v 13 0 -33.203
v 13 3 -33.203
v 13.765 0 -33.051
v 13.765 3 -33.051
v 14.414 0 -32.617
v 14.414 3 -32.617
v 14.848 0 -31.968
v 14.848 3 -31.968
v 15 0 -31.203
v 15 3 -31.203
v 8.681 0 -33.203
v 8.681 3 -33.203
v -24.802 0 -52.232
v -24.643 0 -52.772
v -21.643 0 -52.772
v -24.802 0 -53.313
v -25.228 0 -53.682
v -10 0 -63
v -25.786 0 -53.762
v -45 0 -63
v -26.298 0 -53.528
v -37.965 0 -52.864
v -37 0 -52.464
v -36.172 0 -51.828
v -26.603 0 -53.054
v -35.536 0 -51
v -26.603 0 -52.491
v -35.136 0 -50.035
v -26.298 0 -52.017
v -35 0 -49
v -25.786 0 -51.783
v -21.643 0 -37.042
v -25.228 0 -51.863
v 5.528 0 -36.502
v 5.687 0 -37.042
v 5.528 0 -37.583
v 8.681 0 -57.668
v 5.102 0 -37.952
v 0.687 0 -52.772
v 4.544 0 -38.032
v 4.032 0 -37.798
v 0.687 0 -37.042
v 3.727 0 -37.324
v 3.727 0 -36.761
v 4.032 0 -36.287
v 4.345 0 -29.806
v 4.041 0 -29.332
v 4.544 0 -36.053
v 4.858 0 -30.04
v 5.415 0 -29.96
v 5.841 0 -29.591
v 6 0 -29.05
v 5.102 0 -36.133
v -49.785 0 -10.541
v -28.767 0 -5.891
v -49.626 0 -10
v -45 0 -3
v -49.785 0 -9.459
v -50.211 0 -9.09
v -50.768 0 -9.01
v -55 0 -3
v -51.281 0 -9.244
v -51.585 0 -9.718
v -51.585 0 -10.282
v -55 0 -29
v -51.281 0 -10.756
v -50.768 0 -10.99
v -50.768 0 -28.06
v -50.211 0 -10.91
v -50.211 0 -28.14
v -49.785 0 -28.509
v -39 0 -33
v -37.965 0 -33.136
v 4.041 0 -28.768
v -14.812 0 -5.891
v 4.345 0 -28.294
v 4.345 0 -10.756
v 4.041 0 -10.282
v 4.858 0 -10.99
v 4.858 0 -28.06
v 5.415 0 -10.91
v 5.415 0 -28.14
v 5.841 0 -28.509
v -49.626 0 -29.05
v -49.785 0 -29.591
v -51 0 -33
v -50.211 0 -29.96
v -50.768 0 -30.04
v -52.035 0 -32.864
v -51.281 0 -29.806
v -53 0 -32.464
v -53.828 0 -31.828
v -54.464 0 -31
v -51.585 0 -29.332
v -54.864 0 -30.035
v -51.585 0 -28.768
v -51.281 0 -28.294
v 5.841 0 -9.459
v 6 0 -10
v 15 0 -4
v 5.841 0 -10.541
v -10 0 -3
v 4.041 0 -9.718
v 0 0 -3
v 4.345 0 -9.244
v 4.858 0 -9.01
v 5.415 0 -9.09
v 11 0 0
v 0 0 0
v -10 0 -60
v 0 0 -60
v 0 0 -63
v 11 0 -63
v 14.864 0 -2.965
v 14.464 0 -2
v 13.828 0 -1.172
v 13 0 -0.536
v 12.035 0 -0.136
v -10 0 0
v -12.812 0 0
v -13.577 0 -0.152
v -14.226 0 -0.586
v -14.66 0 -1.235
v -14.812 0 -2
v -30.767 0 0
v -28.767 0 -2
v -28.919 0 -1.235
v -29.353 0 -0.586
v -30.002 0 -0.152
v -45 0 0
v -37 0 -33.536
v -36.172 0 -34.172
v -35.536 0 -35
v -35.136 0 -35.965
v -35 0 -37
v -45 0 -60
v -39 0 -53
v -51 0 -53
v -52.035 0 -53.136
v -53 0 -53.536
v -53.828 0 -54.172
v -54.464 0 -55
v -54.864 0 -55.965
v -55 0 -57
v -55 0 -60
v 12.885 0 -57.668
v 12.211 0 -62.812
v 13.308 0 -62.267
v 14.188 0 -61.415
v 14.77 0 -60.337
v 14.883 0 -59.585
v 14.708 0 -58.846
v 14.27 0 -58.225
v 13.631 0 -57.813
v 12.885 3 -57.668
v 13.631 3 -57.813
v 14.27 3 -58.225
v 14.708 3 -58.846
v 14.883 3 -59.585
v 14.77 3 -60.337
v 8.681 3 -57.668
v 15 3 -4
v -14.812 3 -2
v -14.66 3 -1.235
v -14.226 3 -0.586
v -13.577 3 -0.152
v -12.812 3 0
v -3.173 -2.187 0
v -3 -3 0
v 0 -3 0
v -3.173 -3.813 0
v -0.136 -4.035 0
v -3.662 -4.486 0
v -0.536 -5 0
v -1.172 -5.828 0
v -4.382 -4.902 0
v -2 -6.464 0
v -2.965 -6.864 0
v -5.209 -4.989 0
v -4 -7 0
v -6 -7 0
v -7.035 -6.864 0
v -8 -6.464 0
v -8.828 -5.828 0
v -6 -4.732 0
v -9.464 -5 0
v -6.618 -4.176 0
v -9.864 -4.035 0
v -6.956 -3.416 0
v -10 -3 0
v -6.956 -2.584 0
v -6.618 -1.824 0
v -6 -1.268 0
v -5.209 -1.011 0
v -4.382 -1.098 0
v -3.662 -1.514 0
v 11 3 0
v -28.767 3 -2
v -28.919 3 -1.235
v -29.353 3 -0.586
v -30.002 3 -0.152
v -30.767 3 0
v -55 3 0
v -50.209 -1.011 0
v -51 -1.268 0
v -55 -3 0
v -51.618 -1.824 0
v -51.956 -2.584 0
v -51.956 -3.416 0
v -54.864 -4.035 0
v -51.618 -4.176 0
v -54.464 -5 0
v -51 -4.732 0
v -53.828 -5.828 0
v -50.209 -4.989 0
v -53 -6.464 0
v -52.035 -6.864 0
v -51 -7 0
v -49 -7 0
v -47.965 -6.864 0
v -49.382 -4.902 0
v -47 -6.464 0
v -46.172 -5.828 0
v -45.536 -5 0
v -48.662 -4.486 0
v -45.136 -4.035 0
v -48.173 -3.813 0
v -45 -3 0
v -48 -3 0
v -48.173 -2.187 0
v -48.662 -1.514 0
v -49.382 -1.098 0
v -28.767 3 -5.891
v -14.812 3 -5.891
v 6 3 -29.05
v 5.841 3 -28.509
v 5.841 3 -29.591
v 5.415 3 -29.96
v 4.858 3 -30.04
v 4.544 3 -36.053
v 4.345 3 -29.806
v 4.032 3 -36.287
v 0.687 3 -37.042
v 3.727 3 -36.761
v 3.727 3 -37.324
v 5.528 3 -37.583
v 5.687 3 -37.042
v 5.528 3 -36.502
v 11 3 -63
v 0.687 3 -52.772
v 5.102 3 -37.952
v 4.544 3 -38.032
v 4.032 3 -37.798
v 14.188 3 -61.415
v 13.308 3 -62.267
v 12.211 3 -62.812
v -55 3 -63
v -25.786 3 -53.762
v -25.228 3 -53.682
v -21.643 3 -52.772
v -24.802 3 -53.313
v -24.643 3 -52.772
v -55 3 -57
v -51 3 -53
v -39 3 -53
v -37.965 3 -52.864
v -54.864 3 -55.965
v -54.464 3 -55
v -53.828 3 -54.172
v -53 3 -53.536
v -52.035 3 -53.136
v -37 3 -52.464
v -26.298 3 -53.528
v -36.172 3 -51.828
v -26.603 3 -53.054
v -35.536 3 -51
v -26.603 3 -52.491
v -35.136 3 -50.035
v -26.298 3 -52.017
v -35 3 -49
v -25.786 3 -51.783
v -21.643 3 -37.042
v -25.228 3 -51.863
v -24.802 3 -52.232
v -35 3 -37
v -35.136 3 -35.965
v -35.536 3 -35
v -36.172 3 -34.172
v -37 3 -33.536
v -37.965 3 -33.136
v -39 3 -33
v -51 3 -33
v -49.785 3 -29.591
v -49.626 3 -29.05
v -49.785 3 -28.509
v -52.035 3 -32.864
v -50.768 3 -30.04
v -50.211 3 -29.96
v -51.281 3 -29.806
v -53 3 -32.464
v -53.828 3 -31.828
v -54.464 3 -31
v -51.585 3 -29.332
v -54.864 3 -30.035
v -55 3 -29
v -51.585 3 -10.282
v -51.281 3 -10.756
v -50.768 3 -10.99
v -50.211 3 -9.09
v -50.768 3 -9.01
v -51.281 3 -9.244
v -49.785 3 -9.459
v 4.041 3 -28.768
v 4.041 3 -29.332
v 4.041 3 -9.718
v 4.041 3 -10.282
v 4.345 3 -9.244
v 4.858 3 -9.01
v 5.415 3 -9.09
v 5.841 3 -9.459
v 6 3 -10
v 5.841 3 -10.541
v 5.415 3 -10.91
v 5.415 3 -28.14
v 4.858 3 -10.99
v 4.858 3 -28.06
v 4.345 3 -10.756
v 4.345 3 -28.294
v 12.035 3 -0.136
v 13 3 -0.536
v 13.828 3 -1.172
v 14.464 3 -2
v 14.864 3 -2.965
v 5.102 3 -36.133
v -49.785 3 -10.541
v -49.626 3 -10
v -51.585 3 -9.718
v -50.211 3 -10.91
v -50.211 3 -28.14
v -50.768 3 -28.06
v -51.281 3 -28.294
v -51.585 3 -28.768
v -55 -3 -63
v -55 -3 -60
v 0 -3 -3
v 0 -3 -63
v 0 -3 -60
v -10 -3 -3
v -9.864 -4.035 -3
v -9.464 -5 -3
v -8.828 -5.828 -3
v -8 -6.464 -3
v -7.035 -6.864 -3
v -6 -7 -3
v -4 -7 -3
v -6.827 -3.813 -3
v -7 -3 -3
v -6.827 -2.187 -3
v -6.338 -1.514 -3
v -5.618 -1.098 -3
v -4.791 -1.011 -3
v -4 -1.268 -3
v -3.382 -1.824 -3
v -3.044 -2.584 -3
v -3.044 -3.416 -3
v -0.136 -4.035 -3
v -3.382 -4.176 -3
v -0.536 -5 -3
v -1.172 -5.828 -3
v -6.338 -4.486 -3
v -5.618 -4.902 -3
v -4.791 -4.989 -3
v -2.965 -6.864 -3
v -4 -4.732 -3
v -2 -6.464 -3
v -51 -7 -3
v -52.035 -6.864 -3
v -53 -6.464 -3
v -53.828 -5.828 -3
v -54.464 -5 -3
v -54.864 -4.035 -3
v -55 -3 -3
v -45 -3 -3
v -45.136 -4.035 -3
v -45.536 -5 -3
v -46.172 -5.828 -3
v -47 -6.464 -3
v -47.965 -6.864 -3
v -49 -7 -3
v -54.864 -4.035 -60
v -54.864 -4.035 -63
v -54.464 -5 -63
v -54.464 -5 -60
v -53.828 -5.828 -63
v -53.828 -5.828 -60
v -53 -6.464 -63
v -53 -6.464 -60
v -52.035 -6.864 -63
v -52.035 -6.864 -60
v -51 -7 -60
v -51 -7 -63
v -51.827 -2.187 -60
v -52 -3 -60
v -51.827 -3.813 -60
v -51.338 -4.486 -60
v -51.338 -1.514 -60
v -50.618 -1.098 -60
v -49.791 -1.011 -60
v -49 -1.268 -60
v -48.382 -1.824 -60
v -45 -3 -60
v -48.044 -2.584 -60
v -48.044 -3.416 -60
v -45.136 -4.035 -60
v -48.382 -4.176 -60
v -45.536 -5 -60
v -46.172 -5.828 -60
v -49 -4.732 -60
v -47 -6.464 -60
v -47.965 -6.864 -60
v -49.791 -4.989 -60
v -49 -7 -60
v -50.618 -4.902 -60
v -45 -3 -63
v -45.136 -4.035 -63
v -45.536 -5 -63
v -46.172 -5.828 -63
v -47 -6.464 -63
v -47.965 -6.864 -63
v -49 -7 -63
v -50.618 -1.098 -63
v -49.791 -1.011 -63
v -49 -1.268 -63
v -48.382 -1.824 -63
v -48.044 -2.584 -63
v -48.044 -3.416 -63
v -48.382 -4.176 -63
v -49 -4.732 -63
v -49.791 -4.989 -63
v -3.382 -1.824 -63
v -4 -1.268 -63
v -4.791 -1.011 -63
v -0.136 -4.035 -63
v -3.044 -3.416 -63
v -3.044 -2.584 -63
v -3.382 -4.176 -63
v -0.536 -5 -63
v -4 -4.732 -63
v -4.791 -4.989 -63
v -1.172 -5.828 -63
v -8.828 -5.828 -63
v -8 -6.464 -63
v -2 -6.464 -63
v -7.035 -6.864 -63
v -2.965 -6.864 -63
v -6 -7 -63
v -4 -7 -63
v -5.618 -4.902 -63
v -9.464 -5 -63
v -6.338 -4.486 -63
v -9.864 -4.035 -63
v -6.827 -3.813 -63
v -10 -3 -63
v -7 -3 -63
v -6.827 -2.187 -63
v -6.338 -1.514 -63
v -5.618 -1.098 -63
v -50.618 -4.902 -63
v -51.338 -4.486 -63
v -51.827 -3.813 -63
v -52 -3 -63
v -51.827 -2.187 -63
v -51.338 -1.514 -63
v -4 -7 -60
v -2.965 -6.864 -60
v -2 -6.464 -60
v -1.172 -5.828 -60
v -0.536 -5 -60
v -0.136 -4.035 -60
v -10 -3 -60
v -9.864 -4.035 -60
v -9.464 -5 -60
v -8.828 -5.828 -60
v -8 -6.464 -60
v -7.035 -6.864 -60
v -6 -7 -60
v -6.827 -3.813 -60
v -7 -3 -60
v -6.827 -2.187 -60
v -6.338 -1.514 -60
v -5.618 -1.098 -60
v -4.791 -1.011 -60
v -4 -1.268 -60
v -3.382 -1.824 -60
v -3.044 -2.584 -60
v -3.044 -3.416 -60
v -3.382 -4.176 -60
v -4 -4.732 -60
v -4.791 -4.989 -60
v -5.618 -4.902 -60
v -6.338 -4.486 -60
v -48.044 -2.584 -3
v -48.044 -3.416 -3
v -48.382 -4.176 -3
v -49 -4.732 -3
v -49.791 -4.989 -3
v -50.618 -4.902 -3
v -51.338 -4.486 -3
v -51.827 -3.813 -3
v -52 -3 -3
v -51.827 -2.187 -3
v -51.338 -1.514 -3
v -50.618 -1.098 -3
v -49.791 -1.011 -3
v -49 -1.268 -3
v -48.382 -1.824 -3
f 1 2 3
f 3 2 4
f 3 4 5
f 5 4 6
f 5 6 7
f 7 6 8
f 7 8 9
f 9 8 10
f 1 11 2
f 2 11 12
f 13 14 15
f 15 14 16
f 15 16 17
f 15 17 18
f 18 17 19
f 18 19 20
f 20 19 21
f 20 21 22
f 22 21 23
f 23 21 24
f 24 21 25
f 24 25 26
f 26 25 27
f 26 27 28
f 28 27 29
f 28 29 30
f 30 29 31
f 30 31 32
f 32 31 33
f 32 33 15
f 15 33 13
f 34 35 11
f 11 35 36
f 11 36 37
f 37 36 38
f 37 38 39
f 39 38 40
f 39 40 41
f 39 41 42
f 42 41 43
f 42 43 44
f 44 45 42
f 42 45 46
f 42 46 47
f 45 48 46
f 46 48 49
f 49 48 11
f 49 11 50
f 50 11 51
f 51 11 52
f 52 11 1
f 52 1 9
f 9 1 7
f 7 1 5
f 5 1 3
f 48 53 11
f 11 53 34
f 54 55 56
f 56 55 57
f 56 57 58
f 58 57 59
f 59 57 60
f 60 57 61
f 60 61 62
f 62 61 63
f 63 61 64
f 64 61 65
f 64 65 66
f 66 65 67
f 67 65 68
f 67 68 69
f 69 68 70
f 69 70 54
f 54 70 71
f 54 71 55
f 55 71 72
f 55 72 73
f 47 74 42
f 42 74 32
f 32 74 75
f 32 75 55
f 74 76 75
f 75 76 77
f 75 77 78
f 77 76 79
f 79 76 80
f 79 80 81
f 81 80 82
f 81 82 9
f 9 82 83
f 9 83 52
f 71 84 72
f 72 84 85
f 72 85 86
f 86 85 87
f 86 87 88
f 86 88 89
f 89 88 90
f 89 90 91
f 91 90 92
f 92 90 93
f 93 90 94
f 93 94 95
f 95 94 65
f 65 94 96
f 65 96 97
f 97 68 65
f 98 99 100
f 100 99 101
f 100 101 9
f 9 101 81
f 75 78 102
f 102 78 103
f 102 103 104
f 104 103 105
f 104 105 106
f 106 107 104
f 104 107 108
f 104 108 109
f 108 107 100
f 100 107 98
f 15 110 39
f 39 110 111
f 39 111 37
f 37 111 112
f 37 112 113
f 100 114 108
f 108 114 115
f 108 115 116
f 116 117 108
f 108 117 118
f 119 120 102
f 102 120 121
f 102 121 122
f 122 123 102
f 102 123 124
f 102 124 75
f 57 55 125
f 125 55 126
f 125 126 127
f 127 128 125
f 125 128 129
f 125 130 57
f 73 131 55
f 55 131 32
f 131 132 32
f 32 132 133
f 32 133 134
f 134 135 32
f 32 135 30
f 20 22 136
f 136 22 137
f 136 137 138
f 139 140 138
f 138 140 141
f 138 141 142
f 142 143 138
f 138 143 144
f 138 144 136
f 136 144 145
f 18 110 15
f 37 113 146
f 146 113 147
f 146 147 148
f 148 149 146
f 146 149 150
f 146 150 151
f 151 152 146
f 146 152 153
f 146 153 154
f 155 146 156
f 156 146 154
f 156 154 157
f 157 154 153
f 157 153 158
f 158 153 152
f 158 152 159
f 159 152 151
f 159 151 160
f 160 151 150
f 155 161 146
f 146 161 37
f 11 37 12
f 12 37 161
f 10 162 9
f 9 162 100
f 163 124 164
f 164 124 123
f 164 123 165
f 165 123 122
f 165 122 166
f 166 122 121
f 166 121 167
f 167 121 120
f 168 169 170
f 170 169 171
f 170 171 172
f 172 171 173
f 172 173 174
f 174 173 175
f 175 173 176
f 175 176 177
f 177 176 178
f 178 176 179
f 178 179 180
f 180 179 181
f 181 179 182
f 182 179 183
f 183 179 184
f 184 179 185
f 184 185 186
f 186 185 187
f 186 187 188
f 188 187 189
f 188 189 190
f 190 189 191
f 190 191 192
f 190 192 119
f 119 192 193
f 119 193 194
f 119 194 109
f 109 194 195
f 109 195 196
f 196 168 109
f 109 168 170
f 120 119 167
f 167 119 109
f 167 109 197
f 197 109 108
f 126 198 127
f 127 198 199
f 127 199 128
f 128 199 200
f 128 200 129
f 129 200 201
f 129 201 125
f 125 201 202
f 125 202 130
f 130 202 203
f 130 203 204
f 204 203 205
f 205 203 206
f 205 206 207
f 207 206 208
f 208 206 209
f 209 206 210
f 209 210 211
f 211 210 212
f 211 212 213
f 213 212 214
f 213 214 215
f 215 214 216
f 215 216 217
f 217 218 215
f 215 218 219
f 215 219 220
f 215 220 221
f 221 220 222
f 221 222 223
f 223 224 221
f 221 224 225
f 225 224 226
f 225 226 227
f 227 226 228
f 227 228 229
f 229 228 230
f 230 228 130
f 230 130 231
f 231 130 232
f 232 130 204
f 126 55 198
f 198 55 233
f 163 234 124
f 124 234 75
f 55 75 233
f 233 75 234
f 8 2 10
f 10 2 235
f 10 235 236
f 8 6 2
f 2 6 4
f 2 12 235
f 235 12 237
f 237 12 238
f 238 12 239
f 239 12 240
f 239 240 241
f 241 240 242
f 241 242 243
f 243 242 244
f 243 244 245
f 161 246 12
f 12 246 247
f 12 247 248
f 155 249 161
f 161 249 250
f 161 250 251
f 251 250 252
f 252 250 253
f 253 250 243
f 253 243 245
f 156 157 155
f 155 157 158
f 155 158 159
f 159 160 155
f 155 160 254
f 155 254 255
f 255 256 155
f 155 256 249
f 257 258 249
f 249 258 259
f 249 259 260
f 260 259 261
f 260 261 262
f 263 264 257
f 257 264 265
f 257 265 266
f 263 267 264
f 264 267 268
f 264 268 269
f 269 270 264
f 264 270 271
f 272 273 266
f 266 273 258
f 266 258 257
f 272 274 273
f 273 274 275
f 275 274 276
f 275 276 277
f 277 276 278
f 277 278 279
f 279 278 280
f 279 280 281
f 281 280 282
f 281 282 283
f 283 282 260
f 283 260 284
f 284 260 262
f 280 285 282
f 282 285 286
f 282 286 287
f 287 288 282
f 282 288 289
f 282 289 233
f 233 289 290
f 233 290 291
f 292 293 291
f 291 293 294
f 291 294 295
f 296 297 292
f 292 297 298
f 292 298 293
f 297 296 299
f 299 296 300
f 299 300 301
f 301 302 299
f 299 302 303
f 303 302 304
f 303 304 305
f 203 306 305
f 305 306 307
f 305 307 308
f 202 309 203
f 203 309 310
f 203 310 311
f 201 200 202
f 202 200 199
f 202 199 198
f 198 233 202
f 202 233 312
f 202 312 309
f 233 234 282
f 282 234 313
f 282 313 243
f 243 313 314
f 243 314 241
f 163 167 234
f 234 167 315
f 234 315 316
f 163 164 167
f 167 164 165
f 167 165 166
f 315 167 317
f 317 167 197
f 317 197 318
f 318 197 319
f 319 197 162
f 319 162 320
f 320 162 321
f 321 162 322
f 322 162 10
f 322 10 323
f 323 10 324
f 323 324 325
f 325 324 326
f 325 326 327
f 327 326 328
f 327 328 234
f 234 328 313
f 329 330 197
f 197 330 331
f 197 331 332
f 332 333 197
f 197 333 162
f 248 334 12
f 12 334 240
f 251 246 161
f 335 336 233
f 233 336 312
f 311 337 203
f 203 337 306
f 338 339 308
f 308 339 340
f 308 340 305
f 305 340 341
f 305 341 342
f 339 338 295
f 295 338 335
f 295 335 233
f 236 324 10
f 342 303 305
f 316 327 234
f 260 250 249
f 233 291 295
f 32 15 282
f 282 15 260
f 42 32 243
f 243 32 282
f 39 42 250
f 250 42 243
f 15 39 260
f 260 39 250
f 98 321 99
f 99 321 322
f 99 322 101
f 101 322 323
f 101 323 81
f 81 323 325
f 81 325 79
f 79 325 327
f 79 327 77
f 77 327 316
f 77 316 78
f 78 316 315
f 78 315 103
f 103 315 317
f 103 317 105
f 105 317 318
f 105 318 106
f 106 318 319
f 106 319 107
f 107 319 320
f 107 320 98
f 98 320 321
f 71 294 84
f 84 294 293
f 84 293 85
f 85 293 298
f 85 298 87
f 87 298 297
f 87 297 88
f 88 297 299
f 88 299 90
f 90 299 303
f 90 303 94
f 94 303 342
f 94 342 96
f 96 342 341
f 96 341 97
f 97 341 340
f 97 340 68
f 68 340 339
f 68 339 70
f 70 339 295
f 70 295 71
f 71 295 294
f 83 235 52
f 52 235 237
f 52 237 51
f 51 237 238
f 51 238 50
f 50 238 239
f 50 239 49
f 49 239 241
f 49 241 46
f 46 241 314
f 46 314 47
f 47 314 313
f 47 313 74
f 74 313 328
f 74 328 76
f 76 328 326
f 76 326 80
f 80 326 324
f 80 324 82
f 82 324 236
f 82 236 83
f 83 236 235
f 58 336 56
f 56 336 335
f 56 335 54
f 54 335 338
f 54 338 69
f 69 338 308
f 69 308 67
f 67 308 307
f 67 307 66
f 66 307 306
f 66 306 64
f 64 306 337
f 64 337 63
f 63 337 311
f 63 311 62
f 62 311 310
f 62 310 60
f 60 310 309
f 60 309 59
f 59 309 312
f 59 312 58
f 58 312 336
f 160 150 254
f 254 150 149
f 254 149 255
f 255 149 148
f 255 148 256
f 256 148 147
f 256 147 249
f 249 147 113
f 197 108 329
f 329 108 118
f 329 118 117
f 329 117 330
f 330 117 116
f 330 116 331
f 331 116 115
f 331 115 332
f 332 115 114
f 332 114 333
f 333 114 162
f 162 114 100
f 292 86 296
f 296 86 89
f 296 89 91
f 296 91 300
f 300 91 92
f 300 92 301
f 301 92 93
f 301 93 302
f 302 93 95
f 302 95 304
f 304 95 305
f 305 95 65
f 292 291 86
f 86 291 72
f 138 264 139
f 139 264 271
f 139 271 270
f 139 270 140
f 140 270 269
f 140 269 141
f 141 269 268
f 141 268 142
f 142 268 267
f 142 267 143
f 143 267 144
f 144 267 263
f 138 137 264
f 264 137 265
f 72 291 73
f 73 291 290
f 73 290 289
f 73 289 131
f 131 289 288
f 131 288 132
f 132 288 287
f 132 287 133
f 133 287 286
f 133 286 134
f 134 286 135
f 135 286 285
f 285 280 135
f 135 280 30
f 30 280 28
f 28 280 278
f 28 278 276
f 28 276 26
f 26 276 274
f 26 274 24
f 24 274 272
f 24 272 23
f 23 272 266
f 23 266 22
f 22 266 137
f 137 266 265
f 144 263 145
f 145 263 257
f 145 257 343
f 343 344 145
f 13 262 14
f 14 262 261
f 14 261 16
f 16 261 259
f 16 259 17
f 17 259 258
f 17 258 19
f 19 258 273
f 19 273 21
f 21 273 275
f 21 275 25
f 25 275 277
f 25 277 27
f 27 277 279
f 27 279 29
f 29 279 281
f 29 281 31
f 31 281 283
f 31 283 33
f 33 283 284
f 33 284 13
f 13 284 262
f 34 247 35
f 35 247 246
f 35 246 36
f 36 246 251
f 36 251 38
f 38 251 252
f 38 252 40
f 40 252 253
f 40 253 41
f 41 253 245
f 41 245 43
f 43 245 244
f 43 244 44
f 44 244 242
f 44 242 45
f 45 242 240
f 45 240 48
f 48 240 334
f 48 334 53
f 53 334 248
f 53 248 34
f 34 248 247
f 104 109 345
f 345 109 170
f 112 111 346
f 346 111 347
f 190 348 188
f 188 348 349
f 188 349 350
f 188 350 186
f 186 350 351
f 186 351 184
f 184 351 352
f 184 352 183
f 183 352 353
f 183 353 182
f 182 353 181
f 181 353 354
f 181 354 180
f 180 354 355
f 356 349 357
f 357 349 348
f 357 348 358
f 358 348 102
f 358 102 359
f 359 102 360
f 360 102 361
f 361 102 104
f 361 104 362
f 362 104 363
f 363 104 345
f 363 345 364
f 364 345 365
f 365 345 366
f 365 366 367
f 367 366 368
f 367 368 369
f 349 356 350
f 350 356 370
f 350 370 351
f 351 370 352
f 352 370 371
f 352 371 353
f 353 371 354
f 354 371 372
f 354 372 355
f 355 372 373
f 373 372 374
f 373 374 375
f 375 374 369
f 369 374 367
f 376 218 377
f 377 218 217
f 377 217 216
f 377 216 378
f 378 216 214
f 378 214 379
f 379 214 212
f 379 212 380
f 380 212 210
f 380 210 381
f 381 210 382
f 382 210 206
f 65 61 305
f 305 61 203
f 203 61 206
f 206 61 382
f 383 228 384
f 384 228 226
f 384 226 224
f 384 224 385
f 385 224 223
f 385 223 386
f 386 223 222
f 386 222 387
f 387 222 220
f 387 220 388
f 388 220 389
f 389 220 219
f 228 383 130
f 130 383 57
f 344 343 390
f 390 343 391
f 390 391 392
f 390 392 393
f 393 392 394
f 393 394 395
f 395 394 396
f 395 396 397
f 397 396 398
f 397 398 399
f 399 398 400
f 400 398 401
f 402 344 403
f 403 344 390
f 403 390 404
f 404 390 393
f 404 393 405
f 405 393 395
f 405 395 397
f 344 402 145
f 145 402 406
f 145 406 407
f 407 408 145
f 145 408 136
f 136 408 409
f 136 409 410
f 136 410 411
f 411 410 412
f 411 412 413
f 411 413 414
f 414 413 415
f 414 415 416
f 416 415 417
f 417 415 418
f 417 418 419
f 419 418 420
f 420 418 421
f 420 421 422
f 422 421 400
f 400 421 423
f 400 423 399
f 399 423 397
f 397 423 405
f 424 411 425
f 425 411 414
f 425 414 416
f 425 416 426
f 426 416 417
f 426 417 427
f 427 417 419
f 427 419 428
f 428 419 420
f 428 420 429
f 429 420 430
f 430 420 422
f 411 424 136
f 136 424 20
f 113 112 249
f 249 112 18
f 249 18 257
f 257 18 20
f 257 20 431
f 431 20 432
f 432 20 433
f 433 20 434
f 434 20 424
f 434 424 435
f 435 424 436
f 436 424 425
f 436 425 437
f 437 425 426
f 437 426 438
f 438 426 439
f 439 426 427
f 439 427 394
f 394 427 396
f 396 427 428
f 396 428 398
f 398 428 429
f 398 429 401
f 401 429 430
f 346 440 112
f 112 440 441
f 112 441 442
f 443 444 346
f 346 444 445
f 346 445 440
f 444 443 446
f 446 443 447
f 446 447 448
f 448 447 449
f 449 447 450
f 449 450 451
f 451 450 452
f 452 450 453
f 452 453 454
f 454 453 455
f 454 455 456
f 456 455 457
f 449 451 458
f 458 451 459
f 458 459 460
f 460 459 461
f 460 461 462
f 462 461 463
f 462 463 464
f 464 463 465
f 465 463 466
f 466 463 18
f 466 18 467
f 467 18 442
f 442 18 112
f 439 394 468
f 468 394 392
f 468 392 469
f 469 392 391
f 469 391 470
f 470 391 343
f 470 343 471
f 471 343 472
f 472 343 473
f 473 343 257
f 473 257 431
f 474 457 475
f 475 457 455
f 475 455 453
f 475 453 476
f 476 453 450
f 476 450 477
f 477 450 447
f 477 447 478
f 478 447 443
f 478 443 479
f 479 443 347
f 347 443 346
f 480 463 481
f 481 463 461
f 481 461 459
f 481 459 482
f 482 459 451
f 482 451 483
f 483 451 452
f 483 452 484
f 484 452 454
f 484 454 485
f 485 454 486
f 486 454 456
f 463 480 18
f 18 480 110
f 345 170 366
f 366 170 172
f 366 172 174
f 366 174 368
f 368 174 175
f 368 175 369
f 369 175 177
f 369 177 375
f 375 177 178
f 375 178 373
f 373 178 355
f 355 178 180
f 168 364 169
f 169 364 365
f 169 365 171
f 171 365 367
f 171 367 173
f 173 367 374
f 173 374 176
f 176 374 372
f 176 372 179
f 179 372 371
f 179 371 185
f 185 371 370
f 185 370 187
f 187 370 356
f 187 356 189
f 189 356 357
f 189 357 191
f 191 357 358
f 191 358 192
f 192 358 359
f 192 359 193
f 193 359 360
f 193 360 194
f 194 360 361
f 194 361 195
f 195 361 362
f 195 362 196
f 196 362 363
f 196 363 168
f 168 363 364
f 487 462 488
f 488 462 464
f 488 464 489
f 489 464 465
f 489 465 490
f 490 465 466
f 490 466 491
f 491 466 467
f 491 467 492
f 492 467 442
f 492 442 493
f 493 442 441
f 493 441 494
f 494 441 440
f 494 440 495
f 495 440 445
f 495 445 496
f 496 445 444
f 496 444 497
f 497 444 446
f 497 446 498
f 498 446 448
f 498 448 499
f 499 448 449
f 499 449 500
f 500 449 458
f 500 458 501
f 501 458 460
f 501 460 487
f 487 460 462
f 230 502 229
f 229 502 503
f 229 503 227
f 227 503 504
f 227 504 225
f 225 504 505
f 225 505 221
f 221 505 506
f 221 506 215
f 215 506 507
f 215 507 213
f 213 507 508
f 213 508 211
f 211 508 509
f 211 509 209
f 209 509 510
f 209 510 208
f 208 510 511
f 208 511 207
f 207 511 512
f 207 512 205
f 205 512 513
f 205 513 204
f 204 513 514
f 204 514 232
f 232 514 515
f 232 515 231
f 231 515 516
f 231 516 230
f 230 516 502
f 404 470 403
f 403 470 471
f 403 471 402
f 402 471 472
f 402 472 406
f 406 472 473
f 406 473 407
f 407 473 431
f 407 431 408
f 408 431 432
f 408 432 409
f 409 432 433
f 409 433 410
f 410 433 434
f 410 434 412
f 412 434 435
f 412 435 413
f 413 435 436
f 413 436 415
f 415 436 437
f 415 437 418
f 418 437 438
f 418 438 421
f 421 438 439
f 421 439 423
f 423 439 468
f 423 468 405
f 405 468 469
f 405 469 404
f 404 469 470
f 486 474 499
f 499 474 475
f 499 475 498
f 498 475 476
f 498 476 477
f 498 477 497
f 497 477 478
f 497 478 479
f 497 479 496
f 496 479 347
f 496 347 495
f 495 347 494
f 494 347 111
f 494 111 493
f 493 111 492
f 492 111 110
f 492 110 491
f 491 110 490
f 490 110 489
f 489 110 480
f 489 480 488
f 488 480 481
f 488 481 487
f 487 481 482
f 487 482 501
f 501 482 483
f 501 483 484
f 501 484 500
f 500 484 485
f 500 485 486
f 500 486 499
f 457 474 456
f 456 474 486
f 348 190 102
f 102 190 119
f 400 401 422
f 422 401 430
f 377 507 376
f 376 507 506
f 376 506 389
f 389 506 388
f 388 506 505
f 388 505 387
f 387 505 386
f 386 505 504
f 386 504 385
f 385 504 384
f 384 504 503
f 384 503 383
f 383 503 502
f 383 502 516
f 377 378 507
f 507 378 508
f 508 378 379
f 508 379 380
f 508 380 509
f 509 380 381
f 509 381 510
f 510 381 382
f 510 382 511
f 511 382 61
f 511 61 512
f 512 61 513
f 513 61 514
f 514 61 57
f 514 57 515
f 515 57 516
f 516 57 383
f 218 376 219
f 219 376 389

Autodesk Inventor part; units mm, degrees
ref_plane "YZ Plane" through (0, 0, 0) normal (1, 0, 0) x (0, 1, 0)
ref_plane "XZ Plane" through (0, 0, 0) normal (0, 1, 0) x (-1, 0, 0)
ref_plane "XY Plane" through (0, 0, 0) normal (0, 0, 1) x (1, 0, 0)
sketch "Sketch1" plane through (0, 0, 0) normal (0, 1, 0) x (-1, 0, 0)
  line L0 (0, 0) -> (55, 0)
  line L1 (55, 0) -> (55, -63)
  line L2 (55, -63) -> (0, -63)
  line L3 (0, -63) -> (0, 0)
  dimension "d0" = 55
  dimension "d1" = 63
extrude "Extrusion1" add sketch "Sketch1" along normal blind 3
sketch "Sketch2" plane through (0, 0, 0) normal (0, -1, 0) x (1, 0, 0)
  line L0 (0, 0) -> (-10, 0)
  line L1 (-10, 0) -> (-10, -3)
  line L2 (-10, -3) -> (0, -3)
  line L3 (0, -3) -> (0, 0)
  line L4 (-55, -63) -> (-55, 0) projected
  line L5 (-55, 0) -> (-45, 0)
  line L6 (-45, 0) -> (-45, -3)
  line L7 (-45, -3) -> (-55, -3)
  line L8 (-55, -3) -> (-55, 0)
  line L9 (-55, -63) -> (-45, -63)
  line L10 (-45, -63) -> (-45, -60)
  line L11 (-45, -60) -> (-55, -60)
  line L12 (-55, -60) -> (-55, -63)
  line L13 (0, -63) -> (-10, -63)
  line L14 (-10, -63) -> (-10, -60)
  line L15 (-10, -60) -> (0, -60)
  line L16 (0, -60) -> (0, -63)
  dimension "d4" = 10
  dimension "d5" = 3
  dimension "d6" = 10
  dimension "d7" = 3
  dimension "d8" = 10
  dimension "d9" = 3
  dimension "d10" = 10
  dimension "d11" = 3
extrude "Extrusion2" add sketch "Sketch2" along normal blind 7
sketch "Sketch3" plane through (-55, 3, 0) normal (0, 0, 1) x (1, 0, 0)
  line L0 (10, -10) -> (0, -10) projected
  line L1 (0, -10) -> (5, -10)
  line L2 (5, -10) -> (5, -6)
  line L3 (5, -6) -> (0, -6)
  line L4 (0, -6) -> (0, -10)
  line L5 (45, -3) -> (45, -10) projected
  line L6 (45, -10) -> (50, -10)
  line L7 (50, -10) -> (50, -6)
  line L8 (50, -6) -> (45, -6)
  line L9 (45, -6) -> (45, -10)
  circle A0 centre (5, -6) radius 2
  circle A1 centre (50, -6) radius 2
  point P0 (55, -3)
  dimension "d14" = 5
  dimension "d15" = 4
  dimension "d16" = 5
  dimension "d17" = 4
  dimension "d18" = 4
  dimension "d19" = 4
extrude "Extrusion3" cut sketch "Sketch3" against normal up to surface (63 mm away) contours A0 L3 L2 | L2 L3 A0 | A1 L7 L8 | L8 L7 A1
fillet "Fillet1" radius 4 8 edges at (0, -7, -1.5) (-10, -7, -61.5) (0, -7, -61.5) (-45, -7, -61.5) (-55, -7, -61.5) (-45, -7, -1.5) (-55, -7, -1.5) (-10, -7, -1.5)
sketch "Sketch4" plane through (0, 3, 0) normal (0, 1, 0) x (1, 0, 0)
  line L0 (0, 0) -> (15, 0)
  line L1 (15, 0) -> (15, 63)
  line L2 (15, 63) -> (0, 63)
  line L3 (0, 63) -> (0, 0)
  dimension "d23" = 15
  dimension "d24" = 63
extrude "Extrusion4" add sketch "Sketch4" against normal blind 3
sketch "Sketch5" plane through (0, 3, 0) normal (0, 1, 0) x (1, 0, 0)
  line L0 (14.6866, 62.7723) -> (4.6866, 62.7723)
  line L1 (4.6866, 62.7723) -> (4.6866, 52.7723)
  line L2 (4.6866, 52.7723) -> (14.6866, 52.7723)
  line L3 (14.6866, 52.7723) -> (14.6866, 62.7723)
  line L4 (4.6866, 52.7723) -> (-25.6434, 52.7723)
  line L5 (-25.6434, 52.7723) -> (-25.6434, 37.0423)
  line L6 (-25.6434, 37.0423) -> (4.6866, 37.0423)
  line L7 (4.6866, 37.0423) -> (4.6866, 52.7723)
  circle A0 centre (-25.6434, 52.7723) radius 1
  circle A1 centre (4.6866, 37.0423) radius 1
  circle A2 centre (4.6866, 37.0423) radius 2
  circle A3 centre (-25.6434, 52.7723) radius 2
  point P0 (0, 0)
  dimension "d27" = 10
  dimension "d28" = 10
  dimension "d29" = 30.33
  dimension "d30" = 15.73
  dimension "d31" = 2
  dimension "d32" = 2
  dimension "d33" = 4
  dimension "d34" = 4
extrude "Extrusion5" cut sketch "Sketch5" against normal blind 3 contours A0 L5 L4 | L4 L5 A0 | A1 L6 L7 | L7 L6 A1
sketch "Sketch6" plane through (0, 3, 0) normal (0, 1, 0) x (1, 0, 0)
  line L0 (15, 63) -> (-55, 63) projected
  line L1 (-55, 63) -> (-55, 53)
  line L2 (-55, 53) -> (-35, 53)
  line L3 (-35, 53) -> (-35, 33)
  line L4 (-35, 33) -> (-55, 33)
  line L5 (-55, 33) -> (-55, 53)
  point P0 (0, 0)
  dimension "d37" = 10
  dimension "d38" = 20
  dimension "d39" = 20
extrude "Extrusion6" cut sketch "Sketch6" against normal blind 3
fillet "Fillet2" radius 4 4 edges at (-35, 1.5, -53) (-35, 1.5, -33) (-55, 1.5, -53) (-55, 1.5, -33)
fillet "Fillet3" radius 4 2 edges at (15, 1.5, 0) (15, 1.5, -63)
sketch "Sketch7" plane through (0, 3, 0) normal (0, 1, 0) x (1, 0, 0)
  line L0 (15, 0) -> (5, 0)
  line L1 (5, 0) -> (5, 10)
  line L2 (5, 10) -> (15, 10)
  line L3 (15, 10) -> (15, 0)
  line L4 (5, 10) -> (-50.626, 10)
  line L5 (-50.626, 10) -> (-50.626, 16.3068)
  line L6 (5, 16.3068) -> (5, 10)
  line L7 (5, 10) -> (-50.626, 10)
  line L8 (-50.626, 10) -> (-50.626, 29.05)
  line L9 (-50.626, 29.05) -> (5, 29.05)
  line L10 (5, 29.05) -> (5, 10)
  circle A0 centre (-50.626, 10) radius 1
  circle A1 centre (-50.626, 29.05) radius 1
  circle A2 centre (5, 29.05) radius 1
  circle A3 centre (5, 10) radius 1
  point P0 (0, 0)
  dimension "d44" = 10
  dimension "d45" = 10
  dimension "d48" = 55.626
  dimension "d49" = 19.05
  dimension "d50" = 2
  dimension "d51" = 2
  dimension "d52" = 2
  dimension "d53" = 2
extrude "Extrusion7" cut sketch "Sketch7" against normal blind 3 contours A3 L4 L1 | L1 L2 A3 | L2 L6 A3 | L4 A3 L6 | A0 L5 L4 | L4 L5 A0 | A2 L9 L10 | L10 L9 A2 | A1 L9 L8 | L8 L9 A1
sketch "Sketch8" plane through (0, 3, 0) normal (0, 1, 0) x (1, 0, 0)
  circle A0 centre (-25.6434, 52.7723) radius 1 projected
  line L0 (-25.6434, 52.7723) -> (-21.6434, 52.7723)
  circle A1 centre (4.6866, 37.0423) radius 1 projected
  line L1 (4.6866, 37.0423) -> (0.6866, 37.0423)
  line L2 (-21.6434, 52.7723) -> (0.6866, 52.7723)
  line L3 (0.6866, 52.7723) -> (0.6866, 37.0423)
  line L4 (0.6866, 37.0423) -> (-21.6434, 37.0423)
  line L5 (-21.6434, 37.0423) -> (-21.6434, 52.7723)
  point P0 (0, 0)
  dimension "d56" = 4
  dimension "d57" = 4
extrude "Extrusion8" cut sketch "Sketch8" against normal blind 10 contours L2 L3 L4 L5
sketch "Sketch9" plane through (0, 3, 0) normal (0, 1, 0) x (1, 0, 0)
  line L0 (-28.7673, 5.8913) -> (-14.8119, 5.8913)
  line L1 (-14.8119, 5.8913) -> (-14.8119, -0.376)
  line L2 (-14.8119, -0.376) -> (-28.7673, -0.376)
  line L3 (-28.7673, -0.376) -> (-28.7673, 5.8913)
  point P0 (0, 0)
extrude "Extrusion9" cut sketch "Sketch9" against normal blind 10
fillet "Fillet4" radius 2 2 edges at (-28.7673, 1.5, 0) (-14.8119, 1.5, 0)
sketch "Sketch11" plane through (0, 3, 0) normal (0, 1, 0) x (1, 0, 0)
  line L0 (17.0243, 33.2031) -> (8.6813, 33.2031)
  line L1 (8.6813, 33.2031) -> (8.6813, 57.6685)
  line L2 (8.6813, 57.6685) -> (17.0243, 57.6685)
  line L3 (17.0243, 57.6685) -> (17.0243, 33.2031)
  point P0 (0, 0)
extrude "Extrusion11" cut sketch "Sketch11" against normal blind 10
fillet "Fillet5" radius 2 2 edges at (15, 1.5, -57.6685) (15, 1.5, -33.2031)
properties part number "servo_driver_support"
